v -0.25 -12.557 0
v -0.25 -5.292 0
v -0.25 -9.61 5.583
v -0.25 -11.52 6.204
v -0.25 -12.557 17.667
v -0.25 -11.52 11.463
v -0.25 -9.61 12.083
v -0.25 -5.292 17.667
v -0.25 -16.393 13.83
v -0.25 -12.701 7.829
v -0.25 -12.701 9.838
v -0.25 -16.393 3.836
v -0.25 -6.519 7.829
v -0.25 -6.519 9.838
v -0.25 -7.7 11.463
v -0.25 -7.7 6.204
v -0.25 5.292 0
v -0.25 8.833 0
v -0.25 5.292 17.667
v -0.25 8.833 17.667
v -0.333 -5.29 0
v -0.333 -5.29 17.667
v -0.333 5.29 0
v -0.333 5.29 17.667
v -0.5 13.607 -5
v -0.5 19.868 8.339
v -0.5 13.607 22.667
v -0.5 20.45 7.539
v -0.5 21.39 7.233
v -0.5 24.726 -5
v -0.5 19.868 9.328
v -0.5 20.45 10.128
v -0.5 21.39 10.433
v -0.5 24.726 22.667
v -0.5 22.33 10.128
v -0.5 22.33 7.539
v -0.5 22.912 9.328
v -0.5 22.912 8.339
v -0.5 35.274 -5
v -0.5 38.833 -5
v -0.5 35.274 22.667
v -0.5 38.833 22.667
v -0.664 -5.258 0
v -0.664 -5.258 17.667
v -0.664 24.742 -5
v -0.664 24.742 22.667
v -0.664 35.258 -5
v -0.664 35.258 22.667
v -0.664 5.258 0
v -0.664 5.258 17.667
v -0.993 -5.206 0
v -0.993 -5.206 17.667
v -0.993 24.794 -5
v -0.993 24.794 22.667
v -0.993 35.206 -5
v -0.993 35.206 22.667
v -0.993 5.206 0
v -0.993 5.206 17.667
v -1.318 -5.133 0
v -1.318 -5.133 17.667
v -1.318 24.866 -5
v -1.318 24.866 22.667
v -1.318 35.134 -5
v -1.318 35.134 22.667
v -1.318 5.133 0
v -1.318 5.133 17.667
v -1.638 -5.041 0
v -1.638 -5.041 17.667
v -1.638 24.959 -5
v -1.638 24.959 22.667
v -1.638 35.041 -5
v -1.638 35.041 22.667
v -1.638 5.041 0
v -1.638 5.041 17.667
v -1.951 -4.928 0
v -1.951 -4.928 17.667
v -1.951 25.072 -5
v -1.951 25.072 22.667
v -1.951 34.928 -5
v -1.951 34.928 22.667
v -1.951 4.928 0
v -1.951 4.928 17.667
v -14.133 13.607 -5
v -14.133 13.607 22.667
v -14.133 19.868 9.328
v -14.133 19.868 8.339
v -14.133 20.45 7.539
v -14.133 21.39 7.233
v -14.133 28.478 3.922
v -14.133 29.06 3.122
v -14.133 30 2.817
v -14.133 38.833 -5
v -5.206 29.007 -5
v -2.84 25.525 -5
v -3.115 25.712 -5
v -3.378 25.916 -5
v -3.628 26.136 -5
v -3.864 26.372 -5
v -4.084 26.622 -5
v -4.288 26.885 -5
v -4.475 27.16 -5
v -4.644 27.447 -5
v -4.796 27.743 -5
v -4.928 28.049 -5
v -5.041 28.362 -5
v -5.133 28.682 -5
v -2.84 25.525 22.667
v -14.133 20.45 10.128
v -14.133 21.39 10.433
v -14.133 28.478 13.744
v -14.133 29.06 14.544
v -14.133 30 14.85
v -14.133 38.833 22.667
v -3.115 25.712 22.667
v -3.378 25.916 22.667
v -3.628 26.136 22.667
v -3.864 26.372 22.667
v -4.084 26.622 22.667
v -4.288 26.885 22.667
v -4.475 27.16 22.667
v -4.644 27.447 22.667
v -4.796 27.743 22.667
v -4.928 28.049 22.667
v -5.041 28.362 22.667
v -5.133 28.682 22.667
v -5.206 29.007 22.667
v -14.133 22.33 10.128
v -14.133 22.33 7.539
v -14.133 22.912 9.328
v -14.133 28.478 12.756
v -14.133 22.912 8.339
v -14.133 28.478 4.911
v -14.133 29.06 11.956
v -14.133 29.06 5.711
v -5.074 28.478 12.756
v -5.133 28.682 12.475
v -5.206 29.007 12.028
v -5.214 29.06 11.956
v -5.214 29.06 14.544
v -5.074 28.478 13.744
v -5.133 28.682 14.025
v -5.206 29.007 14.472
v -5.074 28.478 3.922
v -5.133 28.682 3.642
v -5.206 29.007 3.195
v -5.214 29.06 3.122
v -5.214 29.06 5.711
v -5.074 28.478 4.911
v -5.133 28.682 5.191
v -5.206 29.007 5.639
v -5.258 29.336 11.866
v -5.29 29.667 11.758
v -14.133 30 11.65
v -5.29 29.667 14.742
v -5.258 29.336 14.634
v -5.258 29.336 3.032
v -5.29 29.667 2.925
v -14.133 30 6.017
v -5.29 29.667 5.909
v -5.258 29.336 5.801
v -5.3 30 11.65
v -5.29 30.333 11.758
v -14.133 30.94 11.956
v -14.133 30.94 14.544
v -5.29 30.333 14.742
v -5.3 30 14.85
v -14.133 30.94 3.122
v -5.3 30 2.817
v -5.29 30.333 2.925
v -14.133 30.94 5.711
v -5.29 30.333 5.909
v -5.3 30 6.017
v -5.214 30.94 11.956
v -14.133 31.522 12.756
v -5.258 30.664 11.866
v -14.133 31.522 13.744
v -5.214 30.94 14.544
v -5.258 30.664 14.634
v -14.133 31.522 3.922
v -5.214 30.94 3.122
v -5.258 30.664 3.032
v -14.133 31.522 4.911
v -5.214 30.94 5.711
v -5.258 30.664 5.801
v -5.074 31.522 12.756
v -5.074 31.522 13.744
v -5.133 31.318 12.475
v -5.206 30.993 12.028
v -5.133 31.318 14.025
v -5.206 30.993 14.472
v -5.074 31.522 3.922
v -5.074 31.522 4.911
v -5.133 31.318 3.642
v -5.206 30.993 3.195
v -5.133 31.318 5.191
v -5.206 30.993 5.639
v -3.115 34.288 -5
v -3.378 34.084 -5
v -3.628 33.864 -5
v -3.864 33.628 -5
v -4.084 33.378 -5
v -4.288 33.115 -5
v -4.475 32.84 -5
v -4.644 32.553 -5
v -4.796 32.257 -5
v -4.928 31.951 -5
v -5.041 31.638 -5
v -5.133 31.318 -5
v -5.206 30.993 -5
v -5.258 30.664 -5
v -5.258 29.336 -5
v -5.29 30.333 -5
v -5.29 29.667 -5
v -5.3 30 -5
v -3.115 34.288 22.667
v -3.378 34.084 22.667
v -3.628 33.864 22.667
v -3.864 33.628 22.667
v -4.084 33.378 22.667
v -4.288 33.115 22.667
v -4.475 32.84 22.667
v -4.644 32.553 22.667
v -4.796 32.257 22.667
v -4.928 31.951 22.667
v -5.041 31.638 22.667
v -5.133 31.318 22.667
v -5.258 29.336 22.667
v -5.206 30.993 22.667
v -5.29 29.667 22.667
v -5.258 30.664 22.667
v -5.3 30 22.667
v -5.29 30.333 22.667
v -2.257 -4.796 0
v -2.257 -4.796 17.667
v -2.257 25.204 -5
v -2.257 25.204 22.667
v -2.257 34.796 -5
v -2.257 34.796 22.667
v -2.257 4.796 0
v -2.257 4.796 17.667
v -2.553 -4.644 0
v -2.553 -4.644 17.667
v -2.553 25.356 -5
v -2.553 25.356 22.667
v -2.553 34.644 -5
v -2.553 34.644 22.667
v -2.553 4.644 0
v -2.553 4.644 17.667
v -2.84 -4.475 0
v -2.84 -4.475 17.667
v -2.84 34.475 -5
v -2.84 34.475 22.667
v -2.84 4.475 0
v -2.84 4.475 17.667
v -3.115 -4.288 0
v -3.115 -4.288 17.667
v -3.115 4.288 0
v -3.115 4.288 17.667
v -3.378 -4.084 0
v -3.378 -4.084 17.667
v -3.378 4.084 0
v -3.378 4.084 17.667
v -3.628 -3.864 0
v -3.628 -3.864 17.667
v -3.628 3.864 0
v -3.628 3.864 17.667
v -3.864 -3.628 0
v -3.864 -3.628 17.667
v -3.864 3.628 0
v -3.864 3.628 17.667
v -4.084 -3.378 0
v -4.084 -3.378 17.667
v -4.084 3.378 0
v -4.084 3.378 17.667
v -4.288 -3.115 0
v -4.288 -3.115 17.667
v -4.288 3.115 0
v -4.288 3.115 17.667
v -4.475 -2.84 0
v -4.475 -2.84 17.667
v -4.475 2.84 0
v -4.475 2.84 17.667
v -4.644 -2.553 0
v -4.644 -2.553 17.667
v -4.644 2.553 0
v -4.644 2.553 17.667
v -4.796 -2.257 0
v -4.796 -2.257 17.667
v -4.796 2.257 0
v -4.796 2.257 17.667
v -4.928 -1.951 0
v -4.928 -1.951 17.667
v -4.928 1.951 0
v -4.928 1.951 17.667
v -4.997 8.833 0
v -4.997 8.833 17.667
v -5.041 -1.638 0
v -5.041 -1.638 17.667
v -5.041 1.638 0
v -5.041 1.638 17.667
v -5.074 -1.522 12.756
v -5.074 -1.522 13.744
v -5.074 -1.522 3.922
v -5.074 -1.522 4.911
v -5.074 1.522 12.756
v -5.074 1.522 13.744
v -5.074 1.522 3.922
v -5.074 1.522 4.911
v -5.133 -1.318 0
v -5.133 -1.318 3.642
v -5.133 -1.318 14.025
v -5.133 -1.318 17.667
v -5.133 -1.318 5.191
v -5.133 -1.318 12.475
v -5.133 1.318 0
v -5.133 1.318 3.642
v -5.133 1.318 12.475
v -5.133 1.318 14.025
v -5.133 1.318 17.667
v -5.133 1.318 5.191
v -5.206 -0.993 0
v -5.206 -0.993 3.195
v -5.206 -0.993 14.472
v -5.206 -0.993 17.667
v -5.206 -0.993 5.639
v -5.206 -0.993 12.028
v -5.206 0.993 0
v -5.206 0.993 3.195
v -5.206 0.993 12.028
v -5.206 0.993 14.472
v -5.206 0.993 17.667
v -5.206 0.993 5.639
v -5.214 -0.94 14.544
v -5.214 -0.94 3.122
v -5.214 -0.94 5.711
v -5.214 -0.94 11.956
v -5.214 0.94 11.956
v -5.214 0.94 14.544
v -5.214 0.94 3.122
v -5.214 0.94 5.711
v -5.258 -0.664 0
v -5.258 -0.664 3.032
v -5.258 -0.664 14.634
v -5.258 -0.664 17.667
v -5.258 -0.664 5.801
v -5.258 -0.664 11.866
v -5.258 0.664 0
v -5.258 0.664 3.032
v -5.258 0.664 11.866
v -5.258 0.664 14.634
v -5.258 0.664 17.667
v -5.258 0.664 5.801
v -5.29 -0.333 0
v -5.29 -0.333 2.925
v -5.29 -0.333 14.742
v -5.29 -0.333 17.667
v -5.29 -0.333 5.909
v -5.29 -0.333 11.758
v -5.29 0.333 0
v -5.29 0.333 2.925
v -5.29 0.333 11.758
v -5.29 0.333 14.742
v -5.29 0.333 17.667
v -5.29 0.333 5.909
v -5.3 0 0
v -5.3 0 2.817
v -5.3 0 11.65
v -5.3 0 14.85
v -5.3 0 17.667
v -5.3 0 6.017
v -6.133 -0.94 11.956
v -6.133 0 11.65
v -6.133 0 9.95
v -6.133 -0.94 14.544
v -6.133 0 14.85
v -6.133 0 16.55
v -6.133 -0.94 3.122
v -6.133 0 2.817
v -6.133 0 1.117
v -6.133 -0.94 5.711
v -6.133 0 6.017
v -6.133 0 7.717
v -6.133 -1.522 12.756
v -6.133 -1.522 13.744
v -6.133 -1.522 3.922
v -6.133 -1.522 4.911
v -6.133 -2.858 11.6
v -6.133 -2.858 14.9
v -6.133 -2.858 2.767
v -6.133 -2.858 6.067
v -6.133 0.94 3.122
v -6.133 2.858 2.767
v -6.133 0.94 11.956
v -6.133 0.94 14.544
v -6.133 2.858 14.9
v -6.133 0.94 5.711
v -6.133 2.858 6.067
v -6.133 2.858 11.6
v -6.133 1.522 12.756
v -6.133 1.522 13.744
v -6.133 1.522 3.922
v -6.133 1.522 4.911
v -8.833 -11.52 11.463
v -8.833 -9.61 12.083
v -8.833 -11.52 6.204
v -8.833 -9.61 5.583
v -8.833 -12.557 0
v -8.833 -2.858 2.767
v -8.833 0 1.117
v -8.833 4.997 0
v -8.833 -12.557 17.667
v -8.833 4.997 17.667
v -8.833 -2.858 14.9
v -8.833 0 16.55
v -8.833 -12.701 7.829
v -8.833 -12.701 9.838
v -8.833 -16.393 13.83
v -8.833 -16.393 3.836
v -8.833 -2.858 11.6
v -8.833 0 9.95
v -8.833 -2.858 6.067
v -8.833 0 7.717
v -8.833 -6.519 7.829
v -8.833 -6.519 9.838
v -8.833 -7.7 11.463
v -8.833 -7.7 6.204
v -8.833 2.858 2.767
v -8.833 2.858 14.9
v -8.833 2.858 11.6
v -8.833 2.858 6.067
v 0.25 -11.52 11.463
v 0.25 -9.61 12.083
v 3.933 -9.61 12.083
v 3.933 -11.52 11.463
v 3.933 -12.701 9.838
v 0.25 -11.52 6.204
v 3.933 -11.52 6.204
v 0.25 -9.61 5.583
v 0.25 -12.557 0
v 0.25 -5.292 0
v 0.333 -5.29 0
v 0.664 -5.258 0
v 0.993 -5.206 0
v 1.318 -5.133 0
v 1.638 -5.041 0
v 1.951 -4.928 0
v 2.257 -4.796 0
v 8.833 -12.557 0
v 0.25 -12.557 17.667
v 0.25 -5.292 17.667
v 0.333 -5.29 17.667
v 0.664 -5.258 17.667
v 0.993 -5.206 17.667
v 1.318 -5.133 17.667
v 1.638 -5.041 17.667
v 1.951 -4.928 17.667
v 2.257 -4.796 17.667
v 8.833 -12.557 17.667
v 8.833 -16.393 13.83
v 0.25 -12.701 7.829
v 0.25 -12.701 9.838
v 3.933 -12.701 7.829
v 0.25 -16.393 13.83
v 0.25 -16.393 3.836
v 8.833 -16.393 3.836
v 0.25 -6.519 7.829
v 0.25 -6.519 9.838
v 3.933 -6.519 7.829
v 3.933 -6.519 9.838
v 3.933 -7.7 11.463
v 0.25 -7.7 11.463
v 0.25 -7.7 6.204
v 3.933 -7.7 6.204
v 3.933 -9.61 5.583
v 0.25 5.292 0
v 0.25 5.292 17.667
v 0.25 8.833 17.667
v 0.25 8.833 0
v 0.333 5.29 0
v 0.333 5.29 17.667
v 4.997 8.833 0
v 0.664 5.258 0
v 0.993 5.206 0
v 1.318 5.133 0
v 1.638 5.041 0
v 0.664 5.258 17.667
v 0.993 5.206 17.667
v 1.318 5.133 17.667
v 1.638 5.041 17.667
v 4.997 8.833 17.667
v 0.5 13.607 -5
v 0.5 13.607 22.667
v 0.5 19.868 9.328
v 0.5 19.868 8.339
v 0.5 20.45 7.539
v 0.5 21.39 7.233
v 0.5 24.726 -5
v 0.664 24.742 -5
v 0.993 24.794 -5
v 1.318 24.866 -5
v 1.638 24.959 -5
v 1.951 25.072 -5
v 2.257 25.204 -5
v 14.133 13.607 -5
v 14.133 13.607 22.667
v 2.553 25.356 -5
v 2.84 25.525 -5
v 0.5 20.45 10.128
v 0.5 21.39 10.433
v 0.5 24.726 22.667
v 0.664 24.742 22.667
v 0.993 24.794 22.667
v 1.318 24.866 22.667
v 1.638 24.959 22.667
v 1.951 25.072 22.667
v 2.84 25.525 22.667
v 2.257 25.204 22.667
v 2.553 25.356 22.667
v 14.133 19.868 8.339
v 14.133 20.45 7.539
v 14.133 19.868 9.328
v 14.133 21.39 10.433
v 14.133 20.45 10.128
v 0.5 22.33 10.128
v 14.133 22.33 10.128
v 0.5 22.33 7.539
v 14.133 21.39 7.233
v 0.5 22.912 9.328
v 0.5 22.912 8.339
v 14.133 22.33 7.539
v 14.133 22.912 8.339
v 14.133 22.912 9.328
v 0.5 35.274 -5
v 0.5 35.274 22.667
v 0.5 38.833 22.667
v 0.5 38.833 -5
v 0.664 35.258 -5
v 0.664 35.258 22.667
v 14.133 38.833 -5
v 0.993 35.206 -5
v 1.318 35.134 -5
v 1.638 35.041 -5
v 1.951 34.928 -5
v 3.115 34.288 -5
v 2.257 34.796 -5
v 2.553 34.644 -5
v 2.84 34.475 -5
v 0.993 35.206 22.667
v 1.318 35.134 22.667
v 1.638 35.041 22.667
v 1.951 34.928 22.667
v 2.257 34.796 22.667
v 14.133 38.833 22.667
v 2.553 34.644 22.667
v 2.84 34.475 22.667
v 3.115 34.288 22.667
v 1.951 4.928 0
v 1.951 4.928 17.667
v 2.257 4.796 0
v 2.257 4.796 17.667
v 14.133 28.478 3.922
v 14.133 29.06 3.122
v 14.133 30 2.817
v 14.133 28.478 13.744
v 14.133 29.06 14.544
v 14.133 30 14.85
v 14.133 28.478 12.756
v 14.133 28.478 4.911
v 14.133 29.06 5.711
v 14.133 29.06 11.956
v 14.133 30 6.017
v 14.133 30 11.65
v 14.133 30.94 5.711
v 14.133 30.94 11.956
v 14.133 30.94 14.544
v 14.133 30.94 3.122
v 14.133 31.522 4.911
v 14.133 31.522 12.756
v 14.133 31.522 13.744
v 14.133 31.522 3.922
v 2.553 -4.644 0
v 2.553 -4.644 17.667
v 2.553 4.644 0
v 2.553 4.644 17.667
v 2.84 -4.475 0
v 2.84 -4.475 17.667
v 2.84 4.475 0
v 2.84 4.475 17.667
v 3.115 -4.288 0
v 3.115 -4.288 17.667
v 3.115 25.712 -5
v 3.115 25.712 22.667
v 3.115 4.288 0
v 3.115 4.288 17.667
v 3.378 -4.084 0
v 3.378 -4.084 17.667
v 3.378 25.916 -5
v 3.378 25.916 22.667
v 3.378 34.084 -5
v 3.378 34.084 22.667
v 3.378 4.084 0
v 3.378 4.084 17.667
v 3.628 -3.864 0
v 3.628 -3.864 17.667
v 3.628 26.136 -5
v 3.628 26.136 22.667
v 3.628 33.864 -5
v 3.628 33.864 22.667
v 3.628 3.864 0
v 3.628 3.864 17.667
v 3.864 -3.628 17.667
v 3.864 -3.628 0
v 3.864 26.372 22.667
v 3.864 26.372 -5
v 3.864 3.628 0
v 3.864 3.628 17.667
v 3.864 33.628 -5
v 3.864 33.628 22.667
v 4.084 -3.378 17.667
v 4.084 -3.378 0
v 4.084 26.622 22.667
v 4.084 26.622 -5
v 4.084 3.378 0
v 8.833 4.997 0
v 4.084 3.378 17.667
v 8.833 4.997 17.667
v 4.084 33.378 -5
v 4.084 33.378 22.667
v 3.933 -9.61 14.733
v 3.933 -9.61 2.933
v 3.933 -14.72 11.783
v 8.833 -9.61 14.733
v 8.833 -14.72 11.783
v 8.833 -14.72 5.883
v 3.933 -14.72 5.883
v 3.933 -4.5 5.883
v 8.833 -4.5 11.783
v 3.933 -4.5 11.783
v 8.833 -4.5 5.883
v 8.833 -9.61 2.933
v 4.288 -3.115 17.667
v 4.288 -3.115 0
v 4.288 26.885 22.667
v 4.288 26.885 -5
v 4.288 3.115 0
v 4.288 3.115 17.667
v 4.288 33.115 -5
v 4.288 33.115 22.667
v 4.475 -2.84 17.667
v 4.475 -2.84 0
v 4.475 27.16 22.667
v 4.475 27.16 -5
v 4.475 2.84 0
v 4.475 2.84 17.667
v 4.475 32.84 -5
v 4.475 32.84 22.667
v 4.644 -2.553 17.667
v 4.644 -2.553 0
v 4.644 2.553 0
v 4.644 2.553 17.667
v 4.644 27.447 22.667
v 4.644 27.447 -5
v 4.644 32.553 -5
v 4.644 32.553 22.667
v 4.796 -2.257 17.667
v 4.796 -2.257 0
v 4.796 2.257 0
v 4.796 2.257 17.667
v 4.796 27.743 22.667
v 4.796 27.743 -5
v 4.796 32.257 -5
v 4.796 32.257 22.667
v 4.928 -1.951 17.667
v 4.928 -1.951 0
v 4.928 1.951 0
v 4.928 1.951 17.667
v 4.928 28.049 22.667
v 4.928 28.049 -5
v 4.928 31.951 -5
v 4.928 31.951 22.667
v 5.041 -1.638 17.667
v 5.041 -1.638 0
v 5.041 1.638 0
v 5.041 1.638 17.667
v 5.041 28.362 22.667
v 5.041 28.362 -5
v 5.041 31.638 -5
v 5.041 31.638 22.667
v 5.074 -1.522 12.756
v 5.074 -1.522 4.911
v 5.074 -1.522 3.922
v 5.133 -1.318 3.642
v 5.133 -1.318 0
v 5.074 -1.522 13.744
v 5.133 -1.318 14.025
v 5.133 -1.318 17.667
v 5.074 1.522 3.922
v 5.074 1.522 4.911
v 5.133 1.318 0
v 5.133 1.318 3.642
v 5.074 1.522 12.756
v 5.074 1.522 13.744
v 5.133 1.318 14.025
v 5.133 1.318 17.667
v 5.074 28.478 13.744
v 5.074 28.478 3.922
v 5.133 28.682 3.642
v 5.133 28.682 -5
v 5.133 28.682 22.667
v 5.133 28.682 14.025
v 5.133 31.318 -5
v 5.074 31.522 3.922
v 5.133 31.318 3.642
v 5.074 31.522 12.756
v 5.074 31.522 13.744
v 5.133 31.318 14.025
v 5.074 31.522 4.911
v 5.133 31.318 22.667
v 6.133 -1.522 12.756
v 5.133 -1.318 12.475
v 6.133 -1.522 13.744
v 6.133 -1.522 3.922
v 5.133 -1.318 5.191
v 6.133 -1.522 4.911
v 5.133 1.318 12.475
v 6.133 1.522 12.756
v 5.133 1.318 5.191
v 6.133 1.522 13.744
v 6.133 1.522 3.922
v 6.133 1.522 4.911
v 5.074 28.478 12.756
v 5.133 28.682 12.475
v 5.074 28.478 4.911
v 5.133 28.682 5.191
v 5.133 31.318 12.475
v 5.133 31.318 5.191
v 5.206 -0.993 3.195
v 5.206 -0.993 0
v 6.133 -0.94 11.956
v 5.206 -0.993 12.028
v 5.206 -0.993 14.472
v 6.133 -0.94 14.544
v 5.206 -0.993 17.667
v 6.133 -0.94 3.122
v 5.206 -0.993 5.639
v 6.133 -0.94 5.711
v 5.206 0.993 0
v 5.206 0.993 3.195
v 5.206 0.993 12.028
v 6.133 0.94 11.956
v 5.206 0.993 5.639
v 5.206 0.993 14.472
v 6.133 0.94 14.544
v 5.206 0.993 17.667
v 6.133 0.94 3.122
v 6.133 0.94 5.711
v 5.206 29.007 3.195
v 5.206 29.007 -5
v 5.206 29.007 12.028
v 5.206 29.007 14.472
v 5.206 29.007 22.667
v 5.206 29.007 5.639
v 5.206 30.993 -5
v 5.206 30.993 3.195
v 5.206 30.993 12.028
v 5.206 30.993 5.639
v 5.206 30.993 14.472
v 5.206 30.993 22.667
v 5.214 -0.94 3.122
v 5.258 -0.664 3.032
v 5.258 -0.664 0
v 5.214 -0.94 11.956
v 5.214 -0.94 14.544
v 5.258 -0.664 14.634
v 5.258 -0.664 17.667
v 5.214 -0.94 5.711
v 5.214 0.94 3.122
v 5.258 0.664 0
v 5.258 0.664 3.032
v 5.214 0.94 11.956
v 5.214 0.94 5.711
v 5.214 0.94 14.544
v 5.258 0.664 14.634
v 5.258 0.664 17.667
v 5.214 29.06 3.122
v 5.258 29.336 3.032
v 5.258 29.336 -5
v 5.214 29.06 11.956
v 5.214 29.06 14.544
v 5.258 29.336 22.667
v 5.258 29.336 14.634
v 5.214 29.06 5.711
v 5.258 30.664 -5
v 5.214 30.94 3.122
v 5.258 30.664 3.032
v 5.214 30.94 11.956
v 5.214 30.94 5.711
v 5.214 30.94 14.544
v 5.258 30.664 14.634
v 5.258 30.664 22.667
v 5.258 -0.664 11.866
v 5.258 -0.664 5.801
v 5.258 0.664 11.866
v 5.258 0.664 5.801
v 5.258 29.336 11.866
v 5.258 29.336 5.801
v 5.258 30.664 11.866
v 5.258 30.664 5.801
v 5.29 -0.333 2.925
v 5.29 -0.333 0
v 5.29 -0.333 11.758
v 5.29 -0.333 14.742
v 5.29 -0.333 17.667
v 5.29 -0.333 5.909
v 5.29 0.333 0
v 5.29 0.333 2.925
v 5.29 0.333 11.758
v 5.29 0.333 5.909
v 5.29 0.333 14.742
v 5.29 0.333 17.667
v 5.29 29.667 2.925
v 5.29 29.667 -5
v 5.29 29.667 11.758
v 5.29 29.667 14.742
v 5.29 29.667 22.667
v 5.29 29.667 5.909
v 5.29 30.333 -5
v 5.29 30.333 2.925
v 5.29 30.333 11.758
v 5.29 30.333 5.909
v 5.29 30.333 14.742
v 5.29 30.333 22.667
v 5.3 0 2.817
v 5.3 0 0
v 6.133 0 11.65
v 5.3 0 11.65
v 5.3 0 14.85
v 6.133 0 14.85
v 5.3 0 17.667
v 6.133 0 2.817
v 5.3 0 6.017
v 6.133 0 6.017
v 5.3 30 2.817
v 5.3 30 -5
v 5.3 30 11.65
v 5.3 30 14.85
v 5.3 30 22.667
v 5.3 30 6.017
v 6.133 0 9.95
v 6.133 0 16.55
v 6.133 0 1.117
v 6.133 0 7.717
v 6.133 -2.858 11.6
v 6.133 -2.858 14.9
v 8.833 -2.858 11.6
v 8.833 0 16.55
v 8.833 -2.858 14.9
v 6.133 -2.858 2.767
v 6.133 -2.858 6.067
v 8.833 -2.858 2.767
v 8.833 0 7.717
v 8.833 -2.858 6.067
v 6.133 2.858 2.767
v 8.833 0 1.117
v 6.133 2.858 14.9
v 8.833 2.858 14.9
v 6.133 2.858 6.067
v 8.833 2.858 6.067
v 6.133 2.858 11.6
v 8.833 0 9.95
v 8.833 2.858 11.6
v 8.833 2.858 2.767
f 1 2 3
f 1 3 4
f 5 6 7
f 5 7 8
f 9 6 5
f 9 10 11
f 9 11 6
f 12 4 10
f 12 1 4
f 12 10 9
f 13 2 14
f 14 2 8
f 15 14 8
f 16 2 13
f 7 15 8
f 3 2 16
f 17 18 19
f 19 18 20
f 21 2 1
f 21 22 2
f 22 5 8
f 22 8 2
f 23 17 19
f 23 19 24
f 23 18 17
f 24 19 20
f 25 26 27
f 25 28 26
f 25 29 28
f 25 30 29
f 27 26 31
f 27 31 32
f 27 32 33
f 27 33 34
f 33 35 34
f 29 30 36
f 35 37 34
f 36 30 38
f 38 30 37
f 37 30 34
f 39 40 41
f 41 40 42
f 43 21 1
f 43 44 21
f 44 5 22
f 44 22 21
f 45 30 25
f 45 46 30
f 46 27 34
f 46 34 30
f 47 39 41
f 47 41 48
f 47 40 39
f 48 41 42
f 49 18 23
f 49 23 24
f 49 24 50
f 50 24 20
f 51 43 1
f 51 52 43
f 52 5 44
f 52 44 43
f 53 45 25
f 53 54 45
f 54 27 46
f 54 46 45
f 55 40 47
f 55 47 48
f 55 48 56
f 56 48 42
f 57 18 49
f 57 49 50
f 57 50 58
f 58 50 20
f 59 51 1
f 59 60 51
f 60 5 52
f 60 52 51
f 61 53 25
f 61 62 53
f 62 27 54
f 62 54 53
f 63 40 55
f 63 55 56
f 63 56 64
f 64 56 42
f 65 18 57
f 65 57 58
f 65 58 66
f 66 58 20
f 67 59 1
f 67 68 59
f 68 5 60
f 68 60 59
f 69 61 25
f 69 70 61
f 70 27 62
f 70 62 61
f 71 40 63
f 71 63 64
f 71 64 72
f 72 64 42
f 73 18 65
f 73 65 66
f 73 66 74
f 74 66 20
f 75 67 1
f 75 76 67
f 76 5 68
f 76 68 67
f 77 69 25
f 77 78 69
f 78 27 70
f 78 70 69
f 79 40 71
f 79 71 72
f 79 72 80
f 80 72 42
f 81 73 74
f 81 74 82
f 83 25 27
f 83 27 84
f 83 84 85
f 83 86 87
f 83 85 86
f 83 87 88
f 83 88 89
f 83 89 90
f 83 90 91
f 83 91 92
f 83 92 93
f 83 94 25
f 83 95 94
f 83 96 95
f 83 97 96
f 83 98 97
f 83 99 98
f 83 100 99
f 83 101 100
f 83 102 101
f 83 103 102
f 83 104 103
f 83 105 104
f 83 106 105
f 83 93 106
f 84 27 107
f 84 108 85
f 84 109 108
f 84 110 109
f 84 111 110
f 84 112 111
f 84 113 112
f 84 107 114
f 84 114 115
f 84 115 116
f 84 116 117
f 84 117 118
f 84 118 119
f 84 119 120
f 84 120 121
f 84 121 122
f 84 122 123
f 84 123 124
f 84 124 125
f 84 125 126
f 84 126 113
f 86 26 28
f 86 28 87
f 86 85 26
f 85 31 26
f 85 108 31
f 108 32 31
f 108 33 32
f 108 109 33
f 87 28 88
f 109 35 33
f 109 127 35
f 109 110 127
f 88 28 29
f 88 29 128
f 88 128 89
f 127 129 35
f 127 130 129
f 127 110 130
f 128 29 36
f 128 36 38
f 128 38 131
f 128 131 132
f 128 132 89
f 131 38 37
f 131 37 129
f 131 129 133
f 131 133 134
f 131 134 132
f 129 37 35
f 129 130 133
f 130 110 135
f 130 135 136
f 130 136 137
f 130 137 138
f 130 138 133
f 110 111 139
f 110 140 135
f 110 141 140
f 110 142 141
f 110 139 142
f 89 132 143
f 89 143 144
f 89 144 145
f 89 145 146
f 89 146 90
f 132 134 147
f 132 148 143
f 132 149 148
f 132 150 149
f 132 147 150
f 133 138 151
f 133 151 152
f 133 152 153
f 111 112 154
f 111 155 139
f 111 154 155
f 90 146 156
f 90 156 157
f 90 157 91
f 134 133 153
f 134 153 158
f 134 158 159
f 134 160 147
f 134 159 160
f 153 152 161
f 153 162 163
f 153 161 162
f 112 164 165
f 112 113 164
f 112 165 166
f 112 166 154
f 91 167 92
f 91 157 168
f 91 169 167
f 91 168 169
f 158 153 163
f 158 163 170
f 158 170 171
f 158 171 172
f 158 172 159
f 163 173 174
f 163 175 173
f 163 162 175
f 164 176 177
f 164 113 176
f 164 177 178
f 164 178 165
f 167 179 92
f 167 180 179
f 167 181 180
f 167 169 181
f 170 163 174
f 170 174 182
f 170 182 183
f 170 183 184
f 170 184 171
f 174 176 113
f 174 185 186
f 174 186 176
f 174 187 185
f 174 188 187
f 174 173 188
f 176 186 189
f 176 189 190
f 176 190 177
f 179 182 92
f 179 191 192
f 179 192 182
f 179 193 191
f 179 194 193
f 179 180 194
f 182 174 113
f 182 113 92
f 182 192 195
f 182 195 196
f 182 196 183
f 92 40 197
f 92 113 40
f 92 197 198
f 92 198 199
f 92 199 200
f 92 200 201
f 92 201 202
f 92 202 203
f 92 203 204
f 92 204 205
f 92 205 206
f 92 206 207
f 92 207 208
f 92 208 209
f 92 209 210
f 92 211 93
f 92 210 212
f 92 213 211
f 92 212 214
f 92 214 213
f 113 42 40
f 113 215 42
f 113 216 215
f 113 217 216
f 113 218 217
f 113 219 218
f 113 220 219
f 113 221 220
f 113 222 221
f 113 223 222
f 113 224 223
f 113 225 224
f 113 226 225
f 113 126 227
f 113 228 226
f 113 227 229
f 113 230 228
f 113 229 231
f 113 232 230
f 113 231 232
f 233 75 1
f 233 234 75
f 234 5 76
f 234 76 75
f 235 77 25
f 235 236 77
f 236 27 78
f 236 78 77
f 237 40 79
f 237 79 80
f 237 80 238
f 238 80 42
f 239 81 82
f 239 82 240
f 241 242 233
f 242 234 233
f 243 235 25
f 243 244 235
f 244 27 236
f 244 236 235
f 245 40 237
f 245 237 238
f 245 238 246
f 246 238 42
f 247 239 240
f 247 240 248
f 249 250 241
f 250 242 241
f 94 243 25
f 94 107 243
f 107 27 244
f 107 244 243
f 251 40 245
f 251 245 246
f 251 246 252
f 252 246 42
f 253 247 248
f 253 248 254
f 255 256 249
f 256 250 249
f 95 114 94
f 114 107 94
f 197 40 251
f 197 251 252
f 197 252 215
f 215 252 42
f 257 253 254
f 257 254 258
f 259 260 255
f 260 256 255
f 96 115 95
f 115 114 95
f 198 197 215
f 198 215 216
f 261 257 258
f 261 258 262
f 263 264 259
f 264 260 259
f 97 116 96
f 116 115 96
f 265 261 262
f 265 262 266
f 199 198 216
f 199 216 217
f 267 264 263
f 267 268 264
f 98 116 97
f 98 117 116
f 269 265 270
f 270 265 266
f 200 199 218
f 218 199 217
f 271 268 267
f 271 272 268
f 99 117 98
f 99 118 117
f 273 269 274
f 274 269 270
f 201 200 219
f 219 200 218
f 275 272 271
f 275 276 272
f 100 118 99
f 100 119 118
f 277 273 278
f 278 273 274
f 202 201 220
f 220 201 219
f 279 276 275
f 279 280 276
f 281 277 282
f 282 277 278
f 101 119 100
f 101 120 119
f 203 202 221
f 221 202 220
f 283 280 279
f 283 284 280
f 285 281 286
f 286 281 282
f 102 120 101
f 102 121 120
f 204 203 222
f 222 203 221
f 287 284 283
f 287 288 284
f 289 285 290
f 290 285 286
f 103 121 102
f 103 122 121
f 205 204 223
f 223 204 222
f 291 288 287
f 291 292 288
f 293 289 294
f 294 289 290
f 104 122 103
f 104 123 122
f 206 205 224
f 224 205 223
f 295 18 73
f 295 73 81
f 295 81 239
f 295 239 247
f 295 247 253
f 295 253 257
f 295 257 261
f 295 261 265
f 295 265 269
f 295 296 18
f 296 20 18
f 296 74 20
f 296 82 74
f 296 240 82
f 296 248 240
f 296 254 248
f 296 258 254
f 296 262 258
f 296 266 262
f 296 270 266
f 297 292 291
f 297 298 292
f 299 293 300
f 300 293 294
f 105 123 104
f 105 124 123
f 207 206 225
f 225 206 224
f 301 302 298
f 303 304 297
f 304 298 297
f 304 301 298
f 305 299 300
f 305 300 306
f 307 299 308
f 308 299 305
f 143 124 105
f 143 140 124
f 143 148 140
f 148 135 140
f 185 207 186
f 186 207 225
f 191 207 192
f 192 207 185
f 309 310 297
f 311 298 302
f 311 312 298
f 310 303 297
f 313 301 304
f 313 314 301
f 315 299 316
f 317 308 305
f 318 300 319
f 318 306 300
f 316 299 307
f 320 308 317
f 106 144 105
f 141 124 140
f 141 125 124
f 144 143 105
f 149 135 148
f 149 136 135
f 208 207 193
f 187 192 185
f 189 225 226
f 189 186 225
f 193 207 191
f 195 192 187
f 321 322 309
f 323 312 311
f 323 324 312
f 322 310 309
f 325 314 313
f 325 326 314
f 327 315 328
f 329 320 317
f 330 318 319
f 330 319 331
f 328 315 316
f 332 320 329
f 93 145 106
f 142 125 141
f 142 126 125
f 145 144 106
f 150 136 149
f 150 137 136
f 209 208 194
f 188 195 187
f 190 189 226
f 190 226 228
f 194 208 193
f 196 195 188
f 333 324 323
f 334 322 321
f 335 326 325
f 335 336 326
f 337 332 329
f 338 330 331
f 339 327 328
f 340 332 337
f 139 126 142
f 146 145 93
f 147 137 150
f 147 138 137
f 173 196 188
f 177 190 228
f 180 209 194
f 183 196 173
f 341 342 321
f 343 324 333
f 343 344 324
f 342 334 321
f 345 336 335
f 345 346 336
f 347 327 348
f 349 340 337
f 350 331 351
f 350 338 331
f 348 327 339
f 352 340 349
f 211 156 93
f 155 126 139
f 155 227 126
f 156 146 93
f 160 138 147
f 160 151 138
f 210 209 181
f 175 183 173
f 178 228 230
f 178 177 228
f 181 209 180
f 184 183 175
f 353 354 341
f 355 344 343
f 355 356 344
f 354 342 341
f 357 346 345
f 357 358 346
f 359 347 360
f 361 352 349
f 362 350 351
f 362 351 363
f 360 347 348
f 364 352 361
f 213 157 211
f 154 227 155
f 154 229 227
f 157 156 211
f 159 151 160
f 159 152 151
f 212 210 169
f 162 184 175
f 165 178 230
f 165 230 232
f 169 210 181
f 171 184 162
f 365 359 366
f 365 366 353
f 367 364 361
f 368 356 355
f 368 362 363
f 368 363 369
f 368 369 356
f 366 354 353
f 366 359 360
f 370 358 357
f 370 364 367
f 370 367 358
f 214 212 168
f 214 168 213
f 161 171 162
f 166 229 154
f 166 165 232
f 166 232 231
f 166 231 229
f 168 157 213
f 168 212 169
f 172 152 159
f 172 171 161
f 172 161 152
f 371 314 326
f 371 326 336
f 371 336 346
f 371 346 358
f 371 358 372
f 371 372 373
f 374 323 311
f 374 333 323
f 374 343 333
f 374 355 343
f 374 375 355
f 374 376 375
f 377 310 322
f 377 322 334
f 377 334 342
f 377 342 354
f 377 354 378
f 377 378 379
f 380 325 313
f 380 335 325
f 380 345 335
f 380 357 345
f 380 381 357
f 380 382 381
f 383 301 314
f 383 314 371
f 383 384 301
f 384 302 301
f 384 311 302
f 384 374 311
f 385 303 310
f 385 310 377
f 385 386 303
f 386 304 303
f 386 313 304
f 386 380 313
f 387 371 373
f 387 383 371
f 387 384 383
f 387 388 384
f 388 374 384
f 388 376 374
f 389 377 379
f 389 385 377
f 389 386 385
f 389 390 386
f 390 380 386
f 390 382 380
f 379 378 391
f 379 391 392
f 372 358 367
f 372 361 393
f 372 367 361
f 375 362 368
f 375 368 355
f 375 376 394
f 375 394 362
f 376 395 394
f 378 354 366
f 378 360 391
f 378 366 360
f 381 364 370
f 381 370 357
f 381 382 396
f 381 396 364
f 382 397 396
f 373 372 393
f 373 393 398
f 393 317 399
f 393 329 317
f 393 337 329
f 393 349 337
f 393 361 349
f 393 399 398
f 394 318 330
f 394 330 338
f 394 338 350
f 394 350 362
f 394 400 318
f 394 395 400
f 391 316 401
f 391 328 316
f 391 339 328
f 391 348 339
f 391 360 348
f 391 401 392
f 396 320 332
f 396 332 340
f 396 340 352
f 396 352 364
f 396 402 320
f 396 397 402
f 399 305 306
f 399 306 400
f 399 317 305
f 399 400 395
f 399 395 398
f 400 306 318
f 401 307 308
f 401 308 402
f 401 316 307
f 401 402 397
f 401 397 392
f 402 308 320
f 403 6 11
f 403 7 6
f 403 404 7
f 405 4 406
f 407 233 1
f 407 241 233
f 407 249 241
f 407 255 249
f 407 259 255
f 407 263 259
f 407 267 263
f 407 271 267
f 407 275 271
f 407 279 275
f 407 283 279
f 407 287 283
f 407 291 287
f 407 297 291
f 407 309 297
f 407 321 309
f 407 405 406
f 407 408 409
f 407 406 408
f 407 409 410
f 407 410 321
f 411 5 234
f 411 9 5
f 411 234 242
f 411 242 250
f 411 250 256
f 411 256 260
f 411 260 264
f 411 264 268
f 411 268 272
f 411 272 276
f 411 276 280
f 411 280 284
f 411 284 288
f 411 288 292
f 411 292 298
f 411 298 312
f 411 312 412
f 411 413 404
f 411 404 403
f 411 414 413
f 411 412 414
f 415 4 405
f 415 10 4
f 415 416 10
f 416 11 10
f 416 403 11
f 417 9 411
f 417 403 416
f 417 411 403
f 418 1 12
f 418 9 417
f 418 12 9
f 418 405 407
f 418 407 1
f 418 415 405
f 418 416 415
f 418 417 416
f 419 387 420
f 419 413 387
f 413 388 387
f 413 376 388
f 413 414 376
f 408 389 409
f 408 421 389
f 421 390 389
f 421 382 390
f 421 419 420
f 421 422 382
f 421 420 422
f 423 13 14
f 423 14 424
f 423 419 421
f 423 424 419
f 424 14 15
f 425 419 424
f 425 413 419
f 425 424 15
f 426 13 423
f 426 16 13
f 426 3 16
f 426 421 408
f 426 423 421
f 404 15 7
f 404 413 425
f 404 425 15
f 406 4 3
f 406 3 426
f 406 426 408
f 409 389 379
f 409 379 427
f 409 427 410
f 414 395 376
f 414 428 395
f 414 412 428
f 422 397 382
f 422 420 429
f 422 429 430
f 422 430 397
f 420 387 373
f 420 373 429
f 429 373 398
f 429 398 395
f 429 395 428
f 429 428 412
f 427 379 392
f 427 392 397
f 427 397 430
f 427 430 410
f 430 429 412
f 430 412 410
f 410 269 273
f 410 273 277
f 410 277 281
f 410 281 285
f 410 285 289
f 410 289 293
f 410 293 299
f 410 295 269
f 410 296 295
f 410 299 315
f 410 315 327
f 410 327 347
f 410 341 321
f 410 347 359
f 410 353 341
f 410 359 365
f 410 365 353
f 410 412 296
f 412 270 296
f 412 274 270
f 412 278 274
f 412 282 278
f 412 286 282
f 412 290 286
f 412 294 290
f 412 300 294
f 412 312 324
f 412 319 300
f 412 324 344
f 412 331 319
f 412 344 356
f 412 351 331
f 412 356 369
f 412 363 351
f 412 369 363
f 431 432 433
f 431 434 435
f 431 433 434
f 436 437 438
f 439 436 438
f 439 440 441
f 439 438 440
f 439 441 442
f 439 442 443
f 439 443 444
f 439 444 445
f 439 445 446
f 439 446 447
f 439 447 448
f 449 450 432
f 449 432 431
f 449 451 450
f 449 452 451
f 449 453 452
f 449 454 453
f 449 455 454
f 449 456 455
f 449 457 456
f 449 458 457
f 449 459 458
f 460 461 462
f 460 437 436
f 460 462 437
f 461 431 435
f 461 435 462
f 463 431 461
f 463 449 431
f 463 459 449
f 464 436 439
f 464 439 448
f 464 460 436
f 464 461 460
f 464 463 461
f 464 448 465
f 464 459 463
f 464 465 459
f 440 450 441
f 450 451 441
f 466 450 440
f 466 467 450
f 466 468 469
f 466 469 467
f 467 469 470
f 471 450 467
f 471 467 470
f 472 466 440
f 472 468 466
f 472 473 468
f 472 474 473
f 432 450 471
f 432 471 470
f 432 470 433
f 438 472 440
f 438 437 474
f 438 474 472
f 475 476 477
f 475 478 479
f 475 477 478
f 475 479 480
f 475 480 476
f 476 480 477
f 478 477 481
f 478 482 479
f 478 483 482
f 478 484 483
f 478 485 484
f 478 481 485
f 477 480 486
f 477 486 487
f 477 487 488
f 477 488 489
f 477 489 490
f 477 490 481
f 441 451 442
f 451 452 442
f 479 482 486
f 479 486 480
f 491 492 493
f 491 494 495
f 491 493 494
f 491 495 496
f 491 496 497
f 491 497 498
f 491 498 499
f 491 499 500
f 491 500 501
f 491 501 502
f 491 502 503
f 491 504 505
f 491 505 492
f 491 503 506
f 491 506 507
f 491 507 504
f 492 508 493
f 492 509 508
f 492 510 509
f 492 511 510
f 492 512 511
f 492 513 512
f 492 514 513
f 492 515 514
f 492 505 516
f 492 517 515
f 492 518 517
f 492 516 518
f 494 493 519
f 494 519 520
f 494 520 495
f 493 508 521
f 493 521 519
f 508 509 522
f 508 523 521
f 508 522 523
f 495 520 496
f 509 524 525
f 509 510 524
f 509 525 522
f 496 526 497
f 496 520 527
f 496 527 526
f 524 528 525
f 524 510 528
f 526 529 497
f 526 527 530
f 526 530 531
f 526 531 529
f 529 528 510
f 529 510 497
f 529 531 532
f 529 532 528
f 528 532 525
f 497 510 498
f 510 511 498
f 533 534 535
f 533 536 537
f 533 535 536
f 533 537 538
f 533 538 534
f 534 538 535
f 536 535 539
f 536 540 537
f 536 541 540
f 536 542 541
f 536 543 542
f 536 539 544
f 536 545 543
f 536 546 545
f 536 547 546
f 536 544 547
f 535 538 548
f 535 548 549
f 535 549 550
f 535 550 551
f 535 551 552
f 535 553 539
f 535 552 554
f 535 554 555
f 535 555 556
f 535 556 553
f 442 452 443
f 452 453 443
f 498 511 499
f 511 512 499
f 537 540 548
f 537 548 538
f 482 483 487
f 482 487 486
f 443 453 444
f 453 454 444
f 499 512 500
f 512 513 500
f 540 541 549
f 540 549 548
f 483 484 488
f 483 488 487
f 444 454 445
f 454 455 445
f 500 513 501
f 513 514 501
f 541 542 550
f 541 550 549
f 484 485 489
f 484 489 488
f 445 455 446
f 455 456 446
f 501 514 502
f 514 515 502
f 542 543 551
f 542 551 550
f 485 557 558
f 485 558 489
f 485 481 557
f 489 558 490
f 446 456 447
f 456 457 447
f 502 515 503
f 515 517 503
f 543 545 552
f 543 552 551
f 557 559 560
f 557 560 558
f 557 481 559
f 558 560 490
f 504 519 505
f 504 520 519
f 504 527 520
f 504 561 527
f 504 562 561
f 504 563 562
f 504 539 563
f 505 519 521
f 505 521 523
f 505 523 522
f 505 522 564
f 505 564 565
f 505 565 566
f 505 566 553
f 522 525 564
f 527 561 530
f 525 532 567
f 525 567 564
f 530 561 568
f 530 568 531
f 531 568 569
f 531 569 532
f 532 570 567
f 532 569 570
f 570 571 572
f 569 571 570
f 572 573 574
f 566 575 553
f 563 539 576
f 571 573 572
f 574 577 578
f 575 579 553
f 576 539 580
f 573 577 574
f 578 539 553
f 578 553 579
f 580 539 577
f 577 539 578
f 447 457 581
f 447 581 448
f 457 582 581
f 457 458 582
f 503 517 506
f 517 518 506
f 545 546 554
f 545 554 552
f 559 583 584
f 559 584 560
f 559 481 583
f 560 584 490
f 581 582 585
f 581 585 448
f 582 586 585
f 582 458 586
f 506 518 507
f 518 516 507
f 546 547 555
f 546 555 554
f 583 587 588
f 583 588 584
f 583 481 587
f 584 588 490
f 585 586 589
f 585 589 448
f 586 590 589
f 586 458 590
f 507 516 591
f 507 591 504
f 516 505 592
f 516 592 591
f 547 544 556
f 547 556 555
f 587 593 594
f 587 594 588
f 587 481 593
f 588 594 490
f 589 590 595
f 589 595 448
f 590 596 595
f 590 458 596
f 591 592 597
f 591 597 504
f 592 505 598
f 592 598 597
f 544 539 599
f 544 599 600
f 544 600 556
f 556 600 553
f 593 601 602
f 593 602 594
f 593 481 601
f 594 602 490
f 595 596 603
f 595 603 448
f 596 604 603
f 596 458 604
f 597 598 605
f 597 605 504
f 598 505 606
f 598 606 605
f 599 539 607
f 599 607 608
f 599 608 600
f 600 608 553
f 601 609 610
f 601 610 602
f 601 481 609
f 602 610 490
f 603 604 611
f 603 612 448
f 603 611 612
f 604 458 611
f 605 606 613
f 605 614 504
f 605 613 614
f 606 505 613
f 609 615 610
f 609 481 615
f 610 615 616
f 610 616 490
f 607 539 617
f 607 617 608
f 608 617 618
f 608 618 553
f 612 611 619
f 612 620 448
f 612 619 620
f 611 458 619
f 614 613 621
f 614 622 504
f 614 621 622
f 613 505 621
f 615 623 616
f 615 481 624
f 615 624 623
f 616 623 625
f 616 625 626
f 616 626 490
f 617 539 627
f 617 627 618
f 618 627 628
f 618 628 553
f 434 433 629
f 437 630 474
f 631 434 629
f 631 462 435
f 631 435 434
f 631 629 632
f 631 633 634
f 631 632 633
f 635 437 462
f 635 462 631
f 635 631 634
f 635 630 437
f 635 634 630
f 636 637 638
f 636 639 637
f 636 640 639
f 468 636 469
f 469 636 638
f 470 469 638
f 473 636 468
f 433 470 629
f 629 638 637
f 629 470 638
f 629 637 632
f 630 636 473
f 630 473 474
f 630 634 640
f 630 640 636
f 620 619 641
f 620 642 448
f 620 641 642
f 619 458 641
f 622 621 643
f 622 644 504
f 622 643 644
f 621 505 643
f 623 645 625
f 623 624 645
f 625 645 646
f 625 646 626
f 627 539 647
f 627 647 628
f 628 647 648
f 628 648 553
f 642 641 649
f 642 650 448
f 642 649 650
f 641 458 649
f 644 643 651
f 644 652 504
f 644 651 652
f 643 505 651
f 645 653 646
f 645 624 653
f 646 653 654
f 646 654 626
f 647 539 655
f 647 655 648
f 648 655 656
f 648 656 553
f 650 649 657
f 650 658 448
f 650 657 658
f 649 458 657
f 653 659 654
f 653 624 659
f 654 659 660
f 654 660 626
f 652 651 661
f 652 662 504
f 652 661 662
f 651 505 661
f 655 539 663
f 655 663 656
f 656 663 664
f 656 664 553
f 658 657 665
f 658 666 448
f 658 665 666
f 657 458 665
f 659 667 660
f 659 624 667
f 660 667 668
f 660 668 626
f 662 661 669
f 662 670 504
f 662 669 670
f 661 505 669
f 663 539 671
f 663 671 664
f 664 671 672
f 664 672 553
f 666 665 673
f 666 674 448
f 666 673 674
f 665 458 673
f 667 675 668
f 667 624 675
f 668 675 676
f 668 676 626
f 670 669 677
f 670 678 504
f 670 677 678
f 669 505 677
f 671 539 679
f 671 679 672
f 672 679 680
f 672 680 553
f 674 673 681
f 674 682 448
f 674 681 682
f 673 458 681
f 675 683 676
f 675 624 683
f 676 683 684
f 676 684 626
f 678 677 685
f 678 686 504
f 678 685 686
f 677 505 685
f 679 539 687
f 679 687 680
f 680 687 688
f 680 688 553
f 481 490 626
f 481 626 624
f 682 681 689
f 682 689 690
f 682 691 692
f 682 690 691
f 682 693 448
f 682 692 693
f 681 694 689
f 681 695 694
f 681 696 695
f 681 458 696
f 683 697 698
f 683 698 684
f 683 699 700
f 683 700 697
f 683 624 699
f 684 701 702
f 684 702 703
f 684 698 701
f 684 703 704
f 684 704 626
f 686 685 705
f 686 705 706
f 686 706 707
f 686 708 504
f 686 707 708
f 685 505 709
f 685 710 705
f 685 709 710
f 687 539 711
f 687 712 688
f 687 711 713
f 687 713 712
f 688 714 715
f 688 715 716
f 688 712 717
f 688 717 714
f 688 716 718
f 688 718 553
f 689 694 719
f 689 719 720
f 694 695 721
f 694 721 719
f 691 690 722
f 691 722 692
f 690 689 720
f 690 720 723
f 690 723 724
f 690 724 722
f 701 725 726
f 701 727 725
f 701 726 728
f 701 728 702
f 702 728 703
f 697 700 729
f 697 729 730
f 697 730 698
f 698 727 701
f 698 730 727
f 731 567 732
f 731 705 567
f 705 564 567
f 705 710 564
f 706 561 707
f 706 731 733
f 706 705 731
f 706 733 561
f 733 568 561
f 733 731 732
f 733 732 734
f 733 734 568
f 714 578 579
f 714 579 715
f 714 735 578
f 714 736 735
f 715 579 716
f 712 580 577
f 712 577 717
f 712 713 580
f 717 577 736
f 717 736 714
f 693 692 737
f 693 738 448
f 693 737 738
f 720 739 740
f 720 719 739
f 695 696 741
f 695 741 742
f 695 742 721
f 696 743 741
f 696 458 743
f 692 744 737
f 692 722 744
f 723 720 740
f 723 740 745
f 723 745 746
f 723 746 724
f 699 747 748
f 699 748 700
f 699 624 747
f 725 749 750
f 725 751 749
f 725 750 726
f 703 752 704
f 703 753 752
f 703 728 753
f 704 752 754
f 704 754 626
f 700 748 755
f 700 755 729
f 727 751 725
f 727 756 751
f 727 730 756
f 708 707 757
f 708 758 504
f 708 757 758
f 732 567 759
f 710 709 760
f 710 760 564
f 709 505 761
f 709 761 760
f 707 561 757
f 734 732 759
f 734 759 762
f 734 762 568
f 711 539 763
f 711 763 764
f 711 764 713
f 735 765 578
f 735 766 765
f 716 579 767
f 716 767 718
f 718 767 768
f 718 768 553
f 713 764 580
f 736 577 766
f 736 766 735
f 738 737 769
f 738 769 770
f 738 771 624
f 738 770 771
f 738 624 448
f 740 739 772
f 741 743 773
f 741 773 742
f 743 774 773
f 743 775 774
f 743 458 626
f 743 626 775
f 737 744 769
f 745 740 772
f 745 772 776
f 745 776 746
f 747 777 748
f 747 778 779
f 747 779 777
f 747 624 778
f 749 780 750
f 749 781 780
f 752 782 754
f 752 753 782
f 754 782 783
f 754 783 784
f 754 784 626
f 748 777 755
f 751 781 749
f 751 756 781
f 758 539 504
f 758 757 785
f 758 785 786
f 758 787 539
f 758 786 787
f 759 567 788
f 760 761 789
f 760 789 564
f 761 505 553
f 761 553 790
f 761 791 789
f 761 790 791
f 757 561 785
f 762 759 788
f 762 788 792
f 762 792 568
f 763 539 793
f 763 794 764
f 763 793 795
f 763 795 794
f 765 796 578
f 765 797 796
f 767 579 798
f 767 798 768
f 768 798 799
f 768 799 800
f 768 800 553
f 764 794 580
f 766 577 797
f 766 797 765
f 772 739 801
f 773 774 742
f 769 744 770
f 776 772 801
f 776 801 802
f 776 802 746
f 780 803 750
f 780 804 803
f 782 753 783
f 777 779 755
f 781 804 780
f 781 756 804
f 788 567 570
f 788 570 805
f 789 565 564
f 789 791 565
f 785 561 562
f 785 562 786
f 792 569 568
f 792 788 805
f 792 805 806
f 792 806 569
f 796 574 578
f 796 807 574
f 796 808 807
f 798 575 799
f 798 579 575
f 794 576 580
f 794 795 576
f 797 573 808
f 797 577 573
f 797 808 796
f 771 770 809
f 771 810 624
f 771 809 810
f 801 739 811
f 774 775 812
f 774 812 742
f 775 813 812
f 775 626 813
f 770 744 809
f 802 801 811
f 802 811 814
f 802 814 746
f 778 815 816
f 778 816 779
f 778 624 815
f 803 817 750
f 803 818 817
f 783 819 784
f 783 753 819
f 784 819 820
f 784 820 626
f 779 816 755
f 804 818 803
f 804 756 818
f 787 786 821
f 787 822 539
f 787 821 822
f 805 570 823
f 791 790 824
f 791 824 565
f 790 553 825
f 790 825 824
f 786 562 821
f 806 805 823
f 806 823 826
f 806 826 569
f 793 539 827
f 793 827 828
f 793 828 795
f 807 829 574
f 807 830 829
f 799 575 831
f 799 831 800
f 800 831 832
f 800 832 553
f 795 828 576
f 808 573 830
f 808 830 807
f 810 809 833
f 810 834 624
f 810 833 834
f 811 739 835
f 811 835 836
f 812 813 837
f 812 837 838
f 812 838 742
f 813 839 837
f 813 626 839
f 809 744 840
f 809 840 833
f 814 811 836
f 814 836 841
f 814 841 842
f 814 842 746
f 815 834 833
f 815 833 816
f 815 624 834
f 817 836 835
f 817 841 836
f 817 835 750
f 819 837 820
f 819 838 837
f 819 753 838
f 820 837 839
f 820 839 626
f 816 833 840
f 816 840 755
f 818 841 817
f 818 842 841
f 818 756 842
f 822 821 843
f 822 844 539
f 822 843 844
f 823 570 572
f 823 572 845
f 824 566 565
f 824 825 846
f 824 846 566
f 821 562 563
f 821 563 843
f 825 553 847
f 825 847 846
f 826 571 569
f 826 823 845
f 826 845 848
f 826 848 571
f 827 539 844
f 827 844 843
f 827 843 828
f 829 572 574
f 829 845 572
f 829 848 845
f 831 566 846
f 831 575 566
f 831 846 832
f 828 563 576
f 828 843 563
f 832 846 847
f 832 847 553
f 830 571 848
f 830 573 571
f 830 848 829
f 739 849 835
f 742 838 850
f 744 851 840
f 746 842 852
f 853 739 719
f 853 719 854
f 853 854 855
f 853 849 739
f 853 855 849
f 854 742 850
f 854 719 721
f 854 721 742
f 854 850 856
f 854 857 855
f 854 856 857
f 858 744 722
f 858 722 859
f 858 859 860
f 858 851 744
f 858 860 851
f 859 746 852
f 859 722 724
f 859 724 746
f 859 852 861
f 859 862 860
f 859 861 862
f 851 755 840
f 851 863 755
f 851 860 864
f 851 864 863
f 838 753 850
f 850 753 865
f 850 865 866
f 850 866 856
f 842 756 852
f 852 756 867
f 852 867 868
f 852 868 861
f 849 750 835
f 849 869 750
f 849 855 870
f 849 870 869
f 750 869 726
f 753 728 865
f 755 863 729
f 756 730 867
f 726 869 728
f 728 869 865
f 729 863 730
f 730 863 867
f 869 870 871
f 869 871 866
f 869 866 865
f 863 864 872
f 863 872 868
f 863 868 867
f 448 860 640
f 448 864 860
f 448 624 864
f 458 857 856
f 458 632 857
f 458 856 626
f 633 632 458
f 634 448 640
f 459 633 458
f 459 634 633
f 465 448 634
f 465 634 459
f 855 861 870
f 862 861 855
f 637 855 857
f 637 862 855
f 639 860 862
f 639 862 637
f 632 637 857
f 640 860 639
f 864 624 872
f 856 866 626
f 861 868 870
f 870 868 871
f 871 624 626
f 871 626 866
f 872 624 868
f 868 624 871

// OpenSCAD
//improving rendering speed.
draft = true;   // sets rendering quality to draft.
$fs = draft ? 5 : 0.5;
$fa = 10;



module 666_1016(draft){
    
    difference(){

        translate([-(width_666_1016/2),-(depth_666_1016 - tube_for_undercarriage_outer_diameter/2 - coupling_wall_thickness_undercarriage),0])
            cube([width_666_1016,depth_666_1016,height_666_1016]);

    	//tube
        translate ([0,0,- global_clearance/2])
            cylinder(h = height_666_1016 + global_clearance,r = tube_for_undercarriage_outer_diameter/2, $fn = draft ? 100 : 200);

        //bevelled edge
        translate([width_666_1016/2+sqrt(2)*coupling_wall_thickness_undercarriage,0,- global_clearance/2])
            rotate([0,0,45])
               cube([width_666_1016,width_666_1016,height_666_1016 + global_clearance]);

        mirror([1,0,0])
            translate([width_666_1016/2+sqrt(2)*coupling_wall_thickness_undercarriage,0,- global_clearance/2])
                rotate([0,0,45])
                    cube([width_666_1016,width_666_1016,height_666_1016 + global_clearance]);

        translate([-(width_666_1016/2) - global_clearance/2,- depth_666_1016 + height_666_1016/2-sqrt(2)*coupling_wall_thickness_undercarriage,height_666_1016/2])
            rotate([-135,0,0])
                cube([width_666_1016 + global_clearance, height_666_1016,height_666_1016]);
       
        translate([-(width_666_1016/2) - global_clearance/2, - depth_666_1016 + height_666_1016/2-sqrt(2)*coupling_wall_thickness_undercarriage,height_666_1016/2])  
            rotate([45,0,0])
                cube([width_666_1016 + global_clearance,height_666_1016,height_666_1016]);  


        // middle cut
        translate ([-0.25,- depth_666_1016,- global_clearance/2])
            cube ([0.5,depth_666_1016*2,height_666_1016 + global_clearance]);

        // šroub pro kotvu elektromagnetu.
        translate([-width_666_1016/2 - global_clearance/2,-(thickness_between_tubes_undercarriage + tube_for_undercarriage_outer_diameter/2 + M6_screw_diameter/2), height_666_1016/2])
            rotate([0,90,0])
                cylinder(h = width_666_1016 + global_clearance, d = M6_screw_diameter, $fn = draft ? 10 : 20);

        translate([-width_666_1016/2,0,height_666_1016/4])
            rotate ([0,90,0])
                cylinder(h = width_666_1016, r = M3_screw_diameter/2, $fn = draft ? 10 :20 );

    	translate([-width_666_1016/2,0,height_666_1016 - height_666_1016/4])
            rotate ([0,90,0])
                cylinder(h = width_666_1016, r = M3_screw_diameter/2, $fn = draft ? 10 :20 );


    	//nut
    	translate([-width_666_1016/2 - global_clearance, 0, height_666_1016/4])
    	   rotate([0,90,0])
    	      cylinder (h = M3_nut_height + global_clearance, r = M3_nut_diameter/2, $fn = 6);
        
        translate([width_666_1016/2 - M3_nut_height, 0, height_666_1016/4])
    	   rotate([0,90,0])
    	       cylinder (h = M3_nut_height + global_clearance, r = M3_nut_diameter/2, $fn = 6);

    	translate([-width_666_1016/2 - global_clearance, 0, height_666_1016 - height_666_1016/4])
    	   rotate([0,90,0])
    	      cylinder (h = M3_nut_height + global_clearance, r = M3_nut_diameter/2, $fn = 6);
        
        translate([width_666_1016/2 - M3_nut_height, 0, height_666_1016 - height_666_1016/4])
    	   rotate([0,90,0])
    	       cylinder (h = M3_nut_height + global_clearance, r = M3_nut_diameter/2, $fn = 6);

    	translate([width_666_1016/2 - M6_nut_height,-(thickness_between_tubes_undercarriage + tube_for_undercarriage_outer_diameter/2 + M6_screw_diameter/2), height_666_1016/2])
    	   rotate([0,90,0])
    	     cylinder (h = M6_nut_height + global_clearance, r = M6_nut_diameter/2, $fn = 6);

    }
}


module 666_1016_drillhelper(draft){

    
    difference(){

        translate([-(width_666_1016_drillhelper/2),-(depth_666_1016 - tube_for_undercarriage_outer_diameter/2 - coupling_wall_thickness_undercarriage),-5])
           		cube([width_666_1016_drillhelper,depth_666_1016,height_666_1016 + 10]);

        //tube
        translate ([0,0,- global_clearance/2 - 5])
           		cylinder(h = height_666_1016 + global_clearance + 10,r = tube_for_undercarriage_outer_diameter/2, $fn = draft ? 100 : 200);


        // middle cut
        translate ([-global_clearance,- depth_666_1016,- global_clearance/2 - 5])
            	cube ([2* global_clearance, depth_666_1016*2,height_666_1016 + global_clearance + 10]);

        //screw
        translate([-width_666_1016_drillhelper/2 - global_clearance/2,-(thickness_between_tubes_undercarriage + tube_for_undercarriage_outer_diameter/2 + M4_screw_diameter/2), height_666_1016/2])
            rotate([0,90,0])
                cylinder(h = width_666_1016_drillhelper + global_clearance,r = M3_screw_diameter/2, $fn = draft ? 10 : 20);

        translate([-width_666_1016_drillhelper/2 - global_clearance/2,0,height_666_1016/4])
            rotate ([0,90,0])
                cylinder(h = width_666_1016_drillhelper + global_clearance, r = M3_screw_diameter/2, $fn = draft ? 10 :20 );

    	translate([-width_666_1016_drillhelper/2 - global_clearance/2,0,height_666_1016 - height_666_1016/4])
            rotate ([0,90,0])
                cylinder(h = width_666_1016_drillhelper+global_clearance, r = M3_screw_diameter/2, $fn = draft ? 10 :20 );

    }
}


module 666_1016_A(draft){

    difference(){
        666_1016(draft);

        translate ([0,- depth_666_1016,- global_clearance/2])
            cube ([width_666_1016,depth_666_1016*2,height_666_1016 + global_clearance]);
    }
}


module 666_1016_B(draft){


    difference(){
        666_1016(draft);

        translate ([-width_666_1016, -depth_666_1016, -global_clearance/2])
           cube([width_666_1016, depth_666_1016*2, height_666_1016 + global_clearance]);
    }
}



666_1016(draft);

translate([0,30,0])
	666_1016_drillhelper(draft);

include <../Parameters.scad>
